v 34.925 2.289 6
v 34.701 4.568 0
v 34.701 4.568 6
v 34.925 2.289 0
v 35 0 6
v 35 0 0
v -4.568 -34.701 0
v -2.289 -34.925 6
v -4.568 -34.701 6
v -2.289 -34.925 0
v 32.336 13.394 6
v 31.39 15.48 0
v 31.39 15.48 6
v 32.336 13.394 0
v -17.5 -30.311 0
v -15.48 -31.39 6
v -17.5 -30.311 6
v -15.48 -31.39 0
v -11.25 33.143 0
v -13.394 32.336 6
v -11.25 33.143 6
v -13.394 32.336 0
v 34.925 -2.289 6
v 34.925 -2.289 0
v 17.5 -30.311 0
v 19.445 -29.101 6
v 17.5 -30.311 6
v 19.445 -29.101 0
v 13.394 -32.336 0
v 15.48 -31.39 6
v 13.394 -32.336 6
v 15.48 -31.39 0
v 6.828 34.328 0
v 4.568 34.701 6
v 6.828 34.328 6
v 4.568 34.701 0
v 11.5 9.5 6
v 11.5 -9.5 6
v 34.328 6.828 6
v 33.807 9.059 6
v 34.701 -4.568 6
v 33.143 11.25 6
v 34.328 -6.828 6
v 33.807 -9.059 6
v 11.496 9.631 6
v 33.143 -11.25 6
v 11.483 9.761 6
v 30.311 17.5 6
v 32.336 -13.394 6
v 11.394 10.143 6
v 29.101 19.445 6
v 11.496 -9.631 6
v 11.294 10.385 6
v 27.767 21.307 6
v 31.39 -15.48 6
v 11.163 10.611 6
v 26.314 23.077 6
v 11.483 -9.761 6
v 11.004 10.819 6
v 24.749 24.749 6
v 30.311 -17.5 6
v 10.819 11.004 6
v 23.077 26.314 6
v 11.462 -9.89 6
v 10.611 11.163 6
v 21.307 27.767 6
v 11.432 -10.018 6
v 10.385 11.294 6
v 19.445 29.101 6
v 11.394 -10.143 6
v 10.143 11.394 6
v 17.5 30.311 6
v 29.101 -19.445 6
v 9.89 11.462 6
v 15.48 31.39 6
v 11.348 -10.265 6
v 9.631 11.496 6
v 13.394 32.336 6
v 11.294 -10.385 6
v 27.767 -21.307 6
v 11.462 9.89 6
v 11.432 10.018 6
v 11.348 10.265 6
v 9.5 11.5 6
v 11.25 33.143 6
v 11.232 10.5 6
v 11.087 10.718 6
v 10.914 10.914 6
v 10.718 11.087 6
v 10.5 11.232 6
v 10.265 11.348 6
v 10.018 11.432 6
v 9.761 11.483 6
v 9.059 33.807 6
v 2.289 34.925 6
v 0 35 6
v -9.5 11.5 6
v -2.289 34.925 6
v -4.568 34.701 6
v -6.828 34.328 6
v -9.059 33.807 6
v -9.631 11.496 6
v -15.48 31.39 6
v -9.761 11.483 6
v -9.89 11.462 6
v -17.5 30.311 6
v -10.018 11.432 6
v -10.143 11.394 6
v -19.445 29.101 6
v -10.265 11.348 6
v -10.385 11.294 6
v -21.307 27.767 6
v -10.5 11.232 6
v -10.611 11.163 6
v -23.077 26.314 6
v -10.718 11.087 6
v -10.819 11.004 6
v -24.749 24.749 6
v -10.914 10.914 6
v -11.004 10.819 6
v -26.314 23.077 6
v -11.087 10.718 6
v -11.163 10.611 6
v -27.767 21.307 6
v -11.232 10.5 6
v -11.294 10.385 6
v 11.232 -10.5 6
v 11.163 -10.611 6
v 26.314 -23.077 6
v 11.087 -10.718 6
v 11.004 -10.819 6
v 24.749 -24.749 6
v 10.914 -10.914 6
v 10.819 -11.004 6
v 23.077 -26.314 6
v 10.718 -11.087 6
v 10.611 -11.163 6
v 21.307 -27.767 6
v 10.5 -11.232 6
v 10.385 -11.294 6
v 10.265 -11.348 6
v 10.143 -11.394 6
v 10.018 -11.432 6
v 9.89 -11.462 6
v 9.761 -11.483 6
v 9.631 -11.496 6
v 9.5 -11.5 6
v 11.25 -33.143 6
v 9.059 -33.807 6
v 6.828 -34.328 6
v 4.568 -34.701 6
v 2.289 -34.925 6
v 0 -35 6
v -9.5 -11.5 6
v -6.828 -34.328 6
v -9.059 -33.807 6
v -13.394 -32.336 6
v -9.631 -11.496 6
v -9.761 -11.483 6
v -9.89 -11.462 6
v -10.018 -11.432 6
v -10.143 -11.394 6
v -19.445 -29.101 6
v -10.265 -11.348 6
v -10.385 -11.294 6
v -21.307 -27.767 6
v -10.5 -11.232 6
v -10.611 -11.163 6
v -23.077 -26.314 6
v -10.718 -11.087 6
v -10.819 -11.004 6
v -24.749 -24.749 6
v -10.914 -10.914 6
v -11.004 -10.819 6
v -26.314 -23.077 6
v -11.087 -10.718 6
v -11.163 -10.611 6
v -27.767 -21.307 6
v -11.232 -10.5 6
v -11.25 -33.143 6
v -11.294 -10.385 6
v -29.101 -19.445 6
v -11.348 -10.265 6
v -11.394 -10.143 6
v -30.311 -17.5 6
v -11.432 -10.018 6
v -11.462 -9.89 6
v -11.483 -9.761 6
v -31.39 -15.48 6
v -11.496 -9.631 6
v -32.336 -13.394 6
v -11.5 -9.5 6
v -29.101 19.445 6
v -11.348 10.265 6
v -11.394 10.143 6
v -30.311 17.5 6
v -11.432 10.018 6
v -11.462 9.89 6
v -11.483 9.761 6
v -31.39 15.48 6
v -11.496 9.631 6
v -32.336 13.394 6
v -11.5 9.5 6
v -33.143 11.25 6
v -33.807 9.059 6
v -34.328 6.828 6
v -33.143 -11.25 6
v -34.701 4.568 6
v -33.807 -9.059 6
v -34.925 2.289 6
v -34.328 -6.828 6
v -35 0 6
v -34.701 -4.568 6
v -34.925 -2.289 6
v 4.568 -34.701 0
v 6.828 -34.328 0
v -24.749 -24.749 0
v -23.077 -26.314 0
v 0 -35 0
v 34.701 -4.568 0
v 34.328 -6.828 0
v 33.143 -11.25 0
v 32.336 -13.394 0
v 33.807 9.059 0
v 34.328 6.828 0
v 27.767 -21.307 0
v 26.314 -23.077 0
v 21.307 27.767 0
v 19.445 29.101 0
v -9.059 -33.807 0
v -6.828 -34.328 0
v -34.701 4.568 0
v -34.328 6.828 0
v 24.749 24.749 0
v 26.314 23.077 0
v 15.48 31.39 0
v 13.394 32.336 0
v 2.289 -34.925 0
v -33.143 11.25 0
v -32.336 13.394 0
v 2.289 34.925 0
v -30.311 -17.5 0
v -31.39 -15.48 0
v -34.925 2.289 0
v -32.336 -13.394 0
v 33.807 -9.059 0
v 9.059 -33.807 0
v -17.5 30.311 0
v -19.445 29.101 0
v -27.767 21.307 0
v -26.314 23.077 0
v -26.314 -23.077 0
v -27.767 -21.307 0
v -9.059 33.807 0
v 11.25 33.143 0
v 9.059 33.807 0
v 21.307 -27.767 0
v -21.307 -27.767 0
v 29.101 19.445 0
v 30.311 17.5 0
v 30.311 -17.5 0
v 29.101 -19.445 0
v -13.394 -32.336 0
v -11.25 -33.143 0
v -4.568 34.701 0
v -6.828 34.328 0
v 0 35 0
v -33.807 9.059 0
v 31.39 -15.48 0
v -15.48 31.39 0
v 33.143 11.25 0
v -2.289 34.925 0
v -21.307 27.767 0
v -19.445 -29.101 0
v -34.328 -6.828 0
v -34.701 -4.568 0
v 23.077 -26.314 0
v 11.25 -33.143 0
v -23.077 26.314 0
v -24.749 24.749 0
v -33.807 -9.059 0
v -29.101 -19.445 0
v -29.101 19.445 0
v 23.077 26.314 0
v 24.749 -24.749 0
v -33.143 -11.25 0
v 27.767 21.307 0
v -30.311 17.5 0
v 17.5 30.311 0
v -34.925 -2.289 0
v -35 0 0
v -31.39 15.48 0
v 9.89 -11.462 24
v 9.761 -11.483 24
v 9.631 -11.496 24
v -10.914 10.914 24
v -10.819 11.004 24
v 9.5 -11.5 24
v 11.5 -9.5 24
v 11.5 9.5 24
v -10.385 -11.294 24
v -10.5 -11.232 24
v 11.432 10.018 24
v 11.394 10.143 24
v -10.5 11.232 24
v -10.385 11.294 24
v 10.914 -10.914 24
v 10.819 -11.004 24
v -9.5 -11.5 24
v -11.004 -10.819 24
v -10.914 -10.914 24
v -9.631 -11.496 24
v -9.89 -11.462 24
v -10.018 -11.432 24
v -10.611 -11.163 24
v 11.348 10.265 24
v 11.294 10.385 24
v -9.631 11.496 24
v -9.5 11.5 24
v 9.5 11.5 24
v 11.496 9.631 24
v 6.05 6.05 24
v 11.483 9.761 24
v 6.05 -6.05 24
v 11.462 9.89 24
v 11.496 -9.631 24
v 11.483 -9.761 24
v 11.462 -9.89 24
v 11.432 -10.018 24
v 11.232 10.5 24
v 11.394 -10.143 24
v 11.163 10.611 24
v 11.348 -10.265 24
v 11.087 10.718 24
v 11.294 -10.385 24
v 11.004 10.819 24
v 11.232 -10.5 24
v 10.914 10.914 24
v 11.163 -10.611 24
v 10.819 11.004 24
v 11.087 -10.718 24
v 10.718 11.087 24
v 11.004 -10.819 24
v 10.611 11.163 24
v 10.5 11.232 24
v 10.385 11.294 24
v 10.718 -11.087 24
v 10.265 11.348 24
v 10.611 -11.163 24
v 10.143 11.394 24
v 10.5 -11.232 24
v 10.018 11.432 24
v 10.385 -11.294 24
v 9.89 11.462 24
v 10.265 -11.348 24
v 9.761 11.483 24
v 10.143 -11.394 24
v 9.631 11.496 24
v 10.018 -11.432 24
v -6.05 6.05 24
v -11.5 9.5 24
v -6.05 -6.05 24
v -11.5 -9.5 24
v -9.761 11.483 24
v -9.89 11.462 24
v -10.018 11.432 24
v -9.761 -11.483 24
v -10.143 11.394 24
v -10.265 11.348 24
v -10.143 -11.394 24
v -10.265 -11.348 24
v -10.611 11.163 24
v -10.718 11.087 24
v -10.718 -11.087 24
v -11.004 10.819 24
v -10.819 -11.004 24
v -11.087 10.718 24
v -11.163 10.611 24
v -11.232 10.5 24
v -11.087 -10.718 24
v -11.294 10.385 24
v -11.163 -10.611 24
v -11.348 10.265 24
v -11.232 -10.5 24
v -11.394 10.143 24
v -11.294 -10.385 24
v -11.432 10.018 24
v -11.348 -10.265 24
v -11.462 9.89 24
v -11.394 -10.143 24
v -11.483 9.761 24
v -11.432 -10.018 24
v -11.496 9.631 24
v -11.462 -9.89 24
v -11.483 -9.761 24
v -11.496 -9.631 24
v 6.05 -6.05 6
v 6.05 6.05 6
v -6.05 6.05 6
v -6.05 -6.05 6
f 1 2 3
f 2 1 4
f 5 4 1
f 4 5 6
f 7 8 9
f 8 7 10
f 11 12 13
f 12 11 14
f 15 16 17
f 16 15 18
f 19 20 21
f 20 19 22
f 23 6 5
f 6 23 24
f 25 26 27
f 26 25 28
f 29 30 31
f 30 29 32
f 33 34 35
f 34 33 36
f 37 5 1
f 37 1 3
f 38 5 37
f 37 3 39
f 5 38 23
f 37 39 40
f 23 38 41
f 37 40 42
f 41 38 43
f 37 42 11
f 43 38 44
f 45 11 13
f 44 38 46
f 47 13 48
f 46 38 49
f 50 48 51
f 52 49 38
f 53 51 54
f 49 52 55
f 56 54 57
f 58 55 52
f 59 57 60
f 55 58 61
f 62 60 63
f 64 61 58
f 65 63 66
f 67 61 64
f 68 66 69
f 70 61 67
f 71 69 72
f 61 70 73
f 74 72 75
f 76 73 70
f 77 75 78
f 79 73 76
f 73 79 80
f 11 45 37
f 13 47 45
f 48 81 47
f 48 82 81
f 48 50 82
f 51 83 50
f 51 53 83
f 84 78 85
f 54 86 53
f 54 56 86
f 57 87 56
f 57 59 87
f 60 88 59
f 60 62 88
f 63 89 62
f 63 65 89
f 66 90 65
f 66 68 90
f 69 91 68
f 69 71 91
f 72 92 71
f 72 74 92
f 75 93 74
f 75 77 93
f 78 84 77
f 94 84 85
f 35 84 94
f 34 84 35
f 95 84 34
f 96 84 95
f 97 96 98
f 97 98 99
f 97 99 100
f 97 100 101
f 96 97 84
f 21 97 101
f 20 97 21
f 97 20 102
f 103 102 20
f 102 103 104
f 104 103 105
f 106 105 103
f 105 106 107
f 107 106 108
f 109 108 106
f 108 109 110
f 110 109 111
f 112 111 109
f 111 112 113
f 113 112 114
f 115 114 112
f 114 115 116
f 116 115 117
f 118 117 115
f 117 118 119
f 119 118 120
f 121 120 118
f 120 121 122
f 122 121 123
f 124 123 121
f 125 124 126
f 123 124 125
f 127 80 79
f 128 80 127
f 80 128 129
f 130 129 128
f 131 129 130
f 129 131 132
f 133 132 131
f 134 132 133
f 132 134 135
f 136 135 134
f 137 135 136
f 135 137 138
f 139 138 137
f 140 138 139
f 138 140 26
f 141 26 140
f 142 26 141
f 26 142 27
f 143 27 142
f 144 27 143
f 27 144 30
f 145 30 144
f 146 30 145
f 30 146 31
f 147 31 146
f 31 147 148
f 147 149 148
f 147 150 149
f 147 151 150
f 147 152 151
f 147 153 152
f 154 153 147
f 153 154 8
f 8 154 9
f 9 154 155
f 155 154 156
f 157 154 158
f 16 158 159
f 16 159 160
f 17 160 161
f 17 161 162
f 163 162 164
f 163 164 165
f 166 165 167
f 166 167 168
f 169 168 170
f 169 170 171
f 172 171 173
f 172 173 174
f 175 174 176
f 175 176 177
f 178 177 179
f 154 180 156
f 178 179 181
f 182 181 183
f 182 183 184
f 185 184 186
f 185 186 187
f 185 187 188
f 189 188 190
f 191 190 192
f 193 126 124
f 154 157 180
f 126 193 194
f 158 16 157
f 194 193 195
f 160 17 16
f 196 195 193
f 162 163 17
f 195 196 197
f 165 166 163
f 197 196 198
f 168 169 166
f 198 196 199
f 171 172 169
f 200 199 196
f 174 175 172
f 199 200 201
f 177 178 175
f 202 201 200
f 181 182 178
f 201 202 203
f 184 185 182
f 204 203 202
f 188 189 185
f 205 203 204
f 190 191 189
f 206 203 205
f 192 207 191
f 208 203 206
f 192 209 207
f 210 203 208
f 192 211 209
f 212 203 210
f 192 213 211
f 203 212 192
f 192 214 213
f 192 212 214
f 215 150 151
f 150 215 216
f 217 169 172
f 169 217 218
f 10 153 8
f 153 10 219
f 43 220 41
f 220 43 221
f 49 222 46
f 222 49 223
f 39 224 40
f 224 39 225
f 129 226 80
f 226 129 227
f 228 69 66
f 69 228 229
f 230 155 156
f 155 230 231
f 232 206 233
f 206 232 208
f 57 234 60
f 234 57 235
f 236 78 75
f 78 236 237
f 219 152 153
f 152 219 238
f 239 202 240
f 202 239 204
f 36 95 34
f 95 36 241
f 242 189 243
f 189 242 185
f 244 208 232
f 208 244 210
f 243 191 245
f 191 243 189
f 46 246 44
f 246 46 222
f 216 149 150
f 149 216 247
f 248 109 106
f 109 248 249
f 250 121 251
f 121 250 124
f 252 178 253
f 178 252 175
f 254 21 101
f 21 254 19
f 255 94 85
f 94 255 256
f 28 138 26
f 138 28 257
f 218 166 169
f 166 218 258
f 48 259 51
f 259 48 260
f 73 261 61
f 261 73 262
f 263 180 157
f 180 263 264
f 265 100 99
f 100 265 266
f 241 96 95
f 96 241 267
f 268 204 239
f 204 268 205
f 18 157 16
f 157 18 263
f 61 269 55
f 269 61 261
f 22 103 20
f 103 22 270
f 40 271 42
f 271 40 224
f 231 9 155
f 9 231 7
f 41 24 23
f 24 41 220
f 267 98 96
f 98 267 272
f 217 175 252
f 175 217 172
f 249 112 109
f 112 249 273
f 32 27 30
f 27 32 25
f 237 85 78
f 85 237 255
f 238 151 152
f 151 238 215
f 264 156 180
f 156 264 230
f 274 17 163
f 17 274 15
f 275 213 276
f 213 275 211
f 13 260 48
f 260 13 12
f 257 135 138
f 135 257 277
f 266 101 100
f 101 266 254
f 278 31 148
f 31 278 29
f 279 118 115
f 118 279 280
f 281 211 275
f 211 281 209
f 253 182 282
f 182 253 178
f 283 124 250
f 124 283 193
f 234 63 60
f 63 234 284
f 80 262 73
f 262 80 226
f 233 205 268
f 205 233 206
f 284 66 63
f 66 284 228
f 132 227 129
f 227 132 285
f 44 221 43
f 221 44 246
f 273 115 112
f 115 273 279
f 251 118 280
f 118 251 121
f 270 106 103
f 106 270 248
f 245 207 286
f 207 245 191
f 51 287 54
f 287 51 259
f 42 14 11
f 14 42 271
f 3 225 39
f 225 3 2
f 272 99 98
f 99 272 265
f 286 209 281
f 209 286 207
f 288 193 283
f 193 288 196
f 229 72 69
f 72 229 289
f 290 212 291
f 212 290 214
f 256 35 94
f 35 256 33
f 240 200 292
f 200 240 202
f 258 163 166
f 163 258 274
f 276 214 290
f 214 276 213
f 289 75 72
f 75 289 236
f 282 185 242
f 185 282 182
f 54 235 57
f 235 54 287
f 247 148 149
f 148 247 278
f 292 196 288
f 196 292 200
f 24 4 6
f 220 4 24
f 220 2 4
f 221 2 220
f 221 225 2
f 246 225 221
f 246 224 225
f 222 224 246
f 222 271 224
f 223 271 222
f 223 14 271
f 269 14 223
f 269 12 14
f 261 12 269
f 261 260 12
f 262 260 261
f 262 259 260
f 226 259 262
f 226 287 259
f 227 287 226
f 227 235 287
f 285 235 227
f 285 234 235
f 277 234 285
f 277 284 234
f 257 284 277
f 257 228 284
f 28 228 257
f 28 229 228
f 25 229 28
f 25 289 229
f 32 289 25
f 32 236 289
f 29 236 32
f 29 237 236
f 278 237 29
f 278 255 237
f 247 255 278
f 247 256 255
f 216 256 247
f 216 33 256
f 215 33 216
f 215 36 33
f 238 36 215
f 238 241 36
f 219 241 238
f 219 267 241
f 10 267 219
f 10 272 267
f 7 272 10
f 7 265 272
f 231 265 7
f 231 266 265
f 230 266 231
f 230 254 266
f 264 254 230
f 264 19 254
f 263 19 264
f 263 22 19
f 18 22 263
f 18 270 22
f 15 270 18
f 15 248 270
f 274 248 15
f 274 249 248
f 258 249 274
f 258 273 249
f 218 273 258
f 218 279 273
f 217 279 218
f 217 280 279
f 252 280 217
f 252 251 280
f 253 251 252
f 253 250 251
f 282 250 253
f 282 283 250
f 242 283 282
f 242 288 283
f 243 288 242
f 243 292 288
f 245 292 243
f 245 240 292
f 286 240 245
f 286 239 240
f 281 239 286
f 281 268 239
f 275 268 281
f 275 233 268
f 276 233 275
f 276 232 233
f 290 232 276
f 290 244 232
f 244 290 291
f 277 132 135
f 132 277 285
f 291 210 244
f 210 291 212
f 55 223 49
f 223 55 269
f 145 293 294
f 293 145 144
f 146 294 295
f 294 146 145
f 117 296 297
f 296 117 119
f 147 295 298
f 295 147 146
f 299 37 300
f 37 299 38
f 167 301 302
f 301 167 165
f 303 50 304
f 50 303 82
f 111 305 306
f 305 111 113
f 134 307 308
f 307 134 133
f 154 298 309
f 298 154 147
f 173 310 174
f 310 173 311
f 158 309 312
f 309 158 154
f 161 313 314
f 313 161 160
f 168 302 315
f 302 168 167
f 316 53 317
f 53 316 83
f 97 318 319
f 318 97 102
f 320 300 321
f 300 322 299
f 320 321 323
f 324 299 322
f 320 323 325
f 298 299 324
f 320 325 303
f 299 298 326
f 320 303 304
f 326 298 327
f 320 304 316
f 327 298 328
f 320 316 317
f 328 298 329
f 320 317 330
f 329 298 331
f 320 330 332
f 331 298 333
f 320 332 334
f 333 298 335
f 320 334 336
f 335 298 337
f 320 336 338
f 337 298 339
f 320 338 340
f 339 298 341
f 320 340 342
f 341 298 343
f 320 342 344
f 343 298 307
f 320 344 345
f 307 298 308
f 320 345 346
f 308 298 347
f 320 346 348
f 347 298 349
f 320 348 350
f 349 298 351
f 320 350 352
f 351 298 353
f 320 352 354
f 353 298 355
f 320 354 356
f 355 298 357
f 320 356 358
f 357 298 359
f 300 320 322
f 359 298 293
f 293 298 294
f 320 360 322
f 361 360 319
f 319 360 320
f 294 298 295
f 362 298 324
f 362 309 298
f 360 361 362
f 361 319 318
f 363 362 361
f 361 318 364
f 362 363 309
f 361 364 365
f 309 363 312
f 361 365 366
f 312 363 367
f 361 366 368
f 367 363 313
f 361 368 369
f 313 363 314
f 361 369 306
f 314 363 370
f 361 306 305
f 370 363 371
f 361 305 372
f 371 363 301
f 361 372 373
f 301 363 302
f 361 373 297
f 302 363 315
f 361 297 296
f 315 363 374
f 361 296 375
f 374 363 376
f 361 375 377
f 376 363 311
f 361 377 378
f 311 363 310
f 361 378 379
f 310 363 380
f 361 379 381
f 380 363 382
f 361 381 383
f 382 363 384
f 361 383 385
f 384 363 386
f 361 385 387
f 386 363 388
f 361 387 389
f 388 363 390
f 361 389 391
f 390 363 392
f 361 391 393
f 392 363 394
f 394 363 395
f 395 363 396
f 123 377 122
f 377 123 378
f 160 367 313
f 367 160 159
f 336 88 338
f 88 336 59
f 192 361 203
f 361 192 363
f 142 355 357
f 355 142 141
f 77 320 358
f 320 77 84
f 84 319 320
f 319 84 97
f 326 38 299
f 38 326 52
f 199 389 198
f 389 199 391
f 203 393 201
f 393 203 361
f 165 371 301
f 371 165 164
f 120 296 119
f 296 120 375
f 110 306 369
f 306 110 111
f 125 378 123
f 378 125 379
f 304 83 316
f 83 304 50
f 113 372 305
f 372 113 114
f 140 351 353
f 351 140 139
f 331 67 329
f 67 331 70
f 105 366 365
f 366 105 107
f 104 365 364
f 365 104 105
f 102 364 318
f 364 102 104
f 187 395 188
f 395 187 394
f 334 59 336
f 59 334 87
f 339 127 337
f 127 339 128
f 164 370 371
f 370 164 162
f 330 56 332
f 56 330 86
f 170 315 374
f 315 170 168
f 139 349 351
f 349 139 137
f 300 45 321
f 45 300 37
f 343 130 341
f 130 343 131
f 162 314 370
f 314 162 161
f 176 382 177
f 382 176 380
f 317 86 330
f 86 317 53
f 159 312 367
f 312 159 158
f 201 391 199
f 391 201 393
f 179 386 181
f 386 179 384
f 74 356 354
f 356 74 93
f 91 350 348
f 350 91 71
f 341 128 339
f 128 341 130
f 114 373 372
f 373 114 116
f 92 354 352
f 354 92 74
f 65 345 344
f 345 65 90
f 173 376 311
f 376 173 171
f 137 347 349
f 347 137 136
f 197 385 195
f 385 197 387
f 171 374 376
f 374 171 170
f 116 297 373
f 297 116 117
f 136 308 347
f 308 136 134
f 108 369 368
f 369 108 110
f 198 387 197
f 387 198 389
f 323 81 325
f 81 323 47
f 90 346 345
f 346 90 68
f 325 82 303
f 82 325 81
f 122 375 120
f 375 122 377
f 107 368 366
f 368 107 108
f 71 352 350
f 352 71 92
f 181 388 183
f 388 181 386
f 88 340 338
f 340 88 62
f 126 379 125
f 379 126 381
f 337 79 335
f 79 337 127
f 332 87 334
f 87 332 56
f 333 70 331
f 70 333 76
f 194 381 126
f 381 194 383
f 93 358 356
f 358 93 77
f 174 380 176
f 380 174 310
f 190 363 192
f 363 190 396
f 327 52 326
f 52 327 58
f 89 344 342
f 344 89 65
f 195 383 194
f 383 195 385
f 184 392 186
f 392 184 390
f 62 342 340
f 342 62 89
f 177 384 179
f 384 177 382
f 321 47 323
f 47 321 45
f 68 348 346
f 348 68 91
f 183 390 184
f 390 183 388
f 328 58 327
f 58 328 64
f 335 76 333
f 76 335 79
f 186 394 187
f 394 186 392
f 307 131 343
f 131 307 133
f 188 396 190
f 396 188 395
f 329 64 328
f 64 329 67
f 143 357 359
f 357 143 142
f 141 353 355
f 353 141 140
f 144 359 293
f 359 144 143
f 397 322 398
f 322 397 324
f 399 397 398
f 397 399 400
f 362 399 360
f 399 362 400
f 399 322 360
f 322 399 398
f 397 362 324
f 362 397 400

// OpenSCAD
// Base parametrica para tubo quadrado de PVC 12 x 12 mm
// Unidades: mm
$fn = 96;

tubo_externo = 12;
folga_total = 0.1; // folga entre faces opostas
base_diametro = 70;
base_espessura = 6;
soquete_externo = 23;
soquete_altura = 18;
profundidade = 18;

module base_tubo() {
    difference() {
        union() {
            cylinder(d=base_diametro, h=base_espessura);
            translate([0,0,base_espessura])
                linear_extrude(height=soquete_altura)
                    offset(r=2) square([soquete_externo-4,soquete_externo-4], center=true);
        }
        // Encaixe cego: deixa a espessura da base intacta
        translate([0,0,base_espessura+soquete_altura-profundidade])
            cube([tubo_externo+folga_total,tubo_externo+folga_total,profundidade+0.1],center=false);
    }
}
// Centraliza abertura no soquete
module base_final() {
    difference() {
        union() {
            cylinder(d=base_diametro, h=base_espessura);
            translate([0,0,base_espessura])
                linear_extrude(height=soquete_altura)
                    offset(r=2) square([soquete_externo-4,soquete_externo-4], center=true);
        }
        translate([-(tubo_externo+folga_total)/2,-(tubo_externo+folga_total)/2,base_espessura+soquete_altura-profundidade])
            cube([tubo_externo+folga_total,tubo_externo+folga_total,profundidade+0.2]);
    }
}
base_final();
